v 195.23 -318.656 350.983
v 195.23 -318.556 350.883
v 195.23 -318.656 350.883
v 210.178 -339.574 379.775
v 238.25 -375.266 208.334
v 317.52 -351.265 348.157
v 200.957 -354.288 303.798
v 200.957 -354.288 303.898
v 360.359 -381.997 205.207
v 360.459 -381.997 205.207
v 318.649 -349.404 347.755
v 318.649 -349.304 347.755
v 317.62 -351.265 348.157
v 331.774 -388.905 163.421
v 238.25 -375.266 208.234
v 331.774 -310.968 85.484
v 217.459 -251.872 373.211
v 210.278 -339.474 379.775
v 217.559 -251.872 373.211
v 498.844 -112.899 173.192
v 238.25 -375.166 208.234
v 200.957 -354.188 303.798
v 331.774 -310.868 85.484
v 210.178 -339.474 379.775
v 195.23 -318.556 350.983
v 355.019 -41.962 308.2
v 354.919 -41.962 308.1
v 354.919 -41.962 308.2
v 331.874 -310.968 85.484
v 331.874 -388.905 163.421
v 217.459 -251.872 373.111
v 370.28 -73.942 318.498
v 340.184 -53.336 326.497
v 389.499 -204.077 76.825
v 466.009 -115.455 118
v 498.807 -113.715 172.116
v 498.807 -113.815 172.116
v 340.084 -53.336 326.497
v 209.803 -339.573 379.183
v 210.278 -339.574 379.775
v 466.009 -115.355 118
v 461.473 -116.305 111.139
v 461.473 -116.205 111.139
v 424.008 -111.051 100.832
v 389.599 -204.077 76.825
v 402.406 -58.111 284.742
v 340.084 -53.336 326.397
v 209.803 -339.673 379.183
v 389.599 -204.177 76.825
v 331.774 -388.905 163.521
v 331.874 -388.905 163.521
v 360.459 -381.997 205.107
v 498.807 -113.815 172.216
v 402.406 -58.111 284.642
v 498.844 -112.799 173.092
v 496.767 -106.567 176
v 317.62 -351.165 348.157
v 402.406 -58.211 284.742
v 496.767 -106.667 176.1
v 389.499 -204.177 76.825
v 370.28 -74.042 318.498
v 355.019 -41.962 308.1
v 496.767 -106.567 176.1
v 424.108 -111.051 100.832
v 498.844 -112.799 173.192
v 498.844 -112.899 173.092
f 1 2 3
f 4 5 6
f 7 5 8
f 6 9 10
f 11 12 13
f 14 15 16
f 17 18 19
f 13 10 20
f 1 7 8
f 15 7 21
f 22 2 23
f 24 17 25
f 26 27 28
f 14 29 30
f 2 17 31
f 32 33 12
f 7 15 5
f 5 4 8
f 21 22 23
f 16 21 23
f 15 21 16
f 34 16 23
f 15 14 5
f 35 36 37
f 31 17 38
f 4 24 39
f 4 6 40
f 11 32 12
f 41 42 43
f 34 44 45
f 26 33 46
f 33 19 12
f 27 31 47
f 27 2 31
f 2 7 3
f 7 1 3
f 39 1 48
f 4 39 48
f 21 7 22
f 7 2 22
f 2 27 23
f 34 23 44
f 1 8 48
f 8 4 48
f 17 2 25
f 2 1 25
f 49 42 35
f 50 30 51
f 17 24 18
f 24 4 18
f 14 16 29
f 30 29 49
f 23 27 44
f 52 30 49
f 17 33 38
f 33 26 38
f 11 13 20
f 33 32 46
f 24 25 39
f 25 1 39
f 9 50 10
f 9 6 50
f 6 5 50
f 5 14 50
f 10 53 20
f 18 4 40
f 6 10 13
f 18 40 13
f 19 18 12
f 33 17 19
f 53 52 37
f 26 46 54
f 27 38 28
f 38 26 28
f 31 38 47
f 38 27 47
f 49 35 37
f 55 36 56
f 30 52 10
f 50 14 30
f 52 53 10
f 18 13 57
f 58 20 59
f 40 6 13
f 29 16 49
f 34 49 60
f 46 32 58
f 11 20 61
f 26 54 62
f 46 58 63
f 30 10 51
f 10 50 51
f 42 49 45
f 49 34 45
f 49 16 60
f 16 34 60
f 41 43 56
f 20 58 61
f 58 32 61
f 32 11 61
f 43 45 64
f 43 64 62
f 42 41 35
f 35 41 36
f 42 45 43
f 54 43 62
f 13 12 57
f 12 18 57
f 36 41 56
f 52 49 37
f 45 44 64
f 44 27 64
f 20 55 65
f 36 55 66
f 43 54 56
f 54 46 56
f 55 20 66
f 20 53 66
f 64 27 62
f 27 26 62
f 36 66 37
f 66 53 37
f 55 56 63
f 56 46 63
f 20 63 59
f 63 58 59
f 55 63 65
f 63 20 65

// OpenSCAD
hull(){ translate([195.230487166,-318.656364589,350.882661079])cube(0.1,0.1,0.1);
translate([209.802897174,-339.673474234,379.083353123])cube(0.1,0.1,0.1);
translate([200.957055215,-354.288343558,303.797546012])cube(0.1,0.1,0.1);
translate([360.358896864,-381.996599924,205.106724594])cube(0.1,0.1,0.1);
translate([354.919137466,-42.0619946092,308.099730458])cube(0.1,0.1,0.1);
translate([402.306344881,-58.2113662904,284.641884002])cube(0.1,0.1,0.1);
translate([498.706720978,-113.814663951,172.116089613])cube(0.1,0.1,0.1);
translate([498.743961353,-112.898550725,173.09178744])cube(0.1,0.1,0.1);
translate([465.909090909,-115.454545455,118.0])cube(0.1,0.1,0.1);
translate([496.666666667,-106.666666667,176.0])cube(0.1,0.1,0.1);
translate([461.373198286,-116.305025321,111.139462407])cube(0.1,0.1,0.1);
translate([424.008403361,-111.151260504,100.831932773])cube(0.1,0.1,0.1);
translate([389.498714653,-204.177377892,76.8251928021])cube(0.1,0.1,0.1);
translate([331.774193548,-388.904569892,163.420698925])cube(0.1,0.1,0.1);
translate([331.774193548,-310.967741935,85.4838709677])cube(0.1,0.1,0.1);
translate([238.25,-375.265625,208.234375])cube(0.1,0.1,0.1);
translate([217.458770615,-251.971514243,373.110944528])cube(0.1,0.1,0.1);
translate([370.179640719,-74.0419161677,318.398203593])cube(0.1,0.1,0.1);
translate([210.178464006,-339.57389212,379.675155404])cube(0.1,0.1,0.1);
translate([340.083798883,-53.4357541899,326.396648045])cube(0.1,0.1,0.1);
translate([318.549222798,-349.404145078,347.655440415])cube(0.1,0.1,0.1);
translate([317.520339583,-351.26459144,348.057127697])cube(0.1,0.1,0.1); }
